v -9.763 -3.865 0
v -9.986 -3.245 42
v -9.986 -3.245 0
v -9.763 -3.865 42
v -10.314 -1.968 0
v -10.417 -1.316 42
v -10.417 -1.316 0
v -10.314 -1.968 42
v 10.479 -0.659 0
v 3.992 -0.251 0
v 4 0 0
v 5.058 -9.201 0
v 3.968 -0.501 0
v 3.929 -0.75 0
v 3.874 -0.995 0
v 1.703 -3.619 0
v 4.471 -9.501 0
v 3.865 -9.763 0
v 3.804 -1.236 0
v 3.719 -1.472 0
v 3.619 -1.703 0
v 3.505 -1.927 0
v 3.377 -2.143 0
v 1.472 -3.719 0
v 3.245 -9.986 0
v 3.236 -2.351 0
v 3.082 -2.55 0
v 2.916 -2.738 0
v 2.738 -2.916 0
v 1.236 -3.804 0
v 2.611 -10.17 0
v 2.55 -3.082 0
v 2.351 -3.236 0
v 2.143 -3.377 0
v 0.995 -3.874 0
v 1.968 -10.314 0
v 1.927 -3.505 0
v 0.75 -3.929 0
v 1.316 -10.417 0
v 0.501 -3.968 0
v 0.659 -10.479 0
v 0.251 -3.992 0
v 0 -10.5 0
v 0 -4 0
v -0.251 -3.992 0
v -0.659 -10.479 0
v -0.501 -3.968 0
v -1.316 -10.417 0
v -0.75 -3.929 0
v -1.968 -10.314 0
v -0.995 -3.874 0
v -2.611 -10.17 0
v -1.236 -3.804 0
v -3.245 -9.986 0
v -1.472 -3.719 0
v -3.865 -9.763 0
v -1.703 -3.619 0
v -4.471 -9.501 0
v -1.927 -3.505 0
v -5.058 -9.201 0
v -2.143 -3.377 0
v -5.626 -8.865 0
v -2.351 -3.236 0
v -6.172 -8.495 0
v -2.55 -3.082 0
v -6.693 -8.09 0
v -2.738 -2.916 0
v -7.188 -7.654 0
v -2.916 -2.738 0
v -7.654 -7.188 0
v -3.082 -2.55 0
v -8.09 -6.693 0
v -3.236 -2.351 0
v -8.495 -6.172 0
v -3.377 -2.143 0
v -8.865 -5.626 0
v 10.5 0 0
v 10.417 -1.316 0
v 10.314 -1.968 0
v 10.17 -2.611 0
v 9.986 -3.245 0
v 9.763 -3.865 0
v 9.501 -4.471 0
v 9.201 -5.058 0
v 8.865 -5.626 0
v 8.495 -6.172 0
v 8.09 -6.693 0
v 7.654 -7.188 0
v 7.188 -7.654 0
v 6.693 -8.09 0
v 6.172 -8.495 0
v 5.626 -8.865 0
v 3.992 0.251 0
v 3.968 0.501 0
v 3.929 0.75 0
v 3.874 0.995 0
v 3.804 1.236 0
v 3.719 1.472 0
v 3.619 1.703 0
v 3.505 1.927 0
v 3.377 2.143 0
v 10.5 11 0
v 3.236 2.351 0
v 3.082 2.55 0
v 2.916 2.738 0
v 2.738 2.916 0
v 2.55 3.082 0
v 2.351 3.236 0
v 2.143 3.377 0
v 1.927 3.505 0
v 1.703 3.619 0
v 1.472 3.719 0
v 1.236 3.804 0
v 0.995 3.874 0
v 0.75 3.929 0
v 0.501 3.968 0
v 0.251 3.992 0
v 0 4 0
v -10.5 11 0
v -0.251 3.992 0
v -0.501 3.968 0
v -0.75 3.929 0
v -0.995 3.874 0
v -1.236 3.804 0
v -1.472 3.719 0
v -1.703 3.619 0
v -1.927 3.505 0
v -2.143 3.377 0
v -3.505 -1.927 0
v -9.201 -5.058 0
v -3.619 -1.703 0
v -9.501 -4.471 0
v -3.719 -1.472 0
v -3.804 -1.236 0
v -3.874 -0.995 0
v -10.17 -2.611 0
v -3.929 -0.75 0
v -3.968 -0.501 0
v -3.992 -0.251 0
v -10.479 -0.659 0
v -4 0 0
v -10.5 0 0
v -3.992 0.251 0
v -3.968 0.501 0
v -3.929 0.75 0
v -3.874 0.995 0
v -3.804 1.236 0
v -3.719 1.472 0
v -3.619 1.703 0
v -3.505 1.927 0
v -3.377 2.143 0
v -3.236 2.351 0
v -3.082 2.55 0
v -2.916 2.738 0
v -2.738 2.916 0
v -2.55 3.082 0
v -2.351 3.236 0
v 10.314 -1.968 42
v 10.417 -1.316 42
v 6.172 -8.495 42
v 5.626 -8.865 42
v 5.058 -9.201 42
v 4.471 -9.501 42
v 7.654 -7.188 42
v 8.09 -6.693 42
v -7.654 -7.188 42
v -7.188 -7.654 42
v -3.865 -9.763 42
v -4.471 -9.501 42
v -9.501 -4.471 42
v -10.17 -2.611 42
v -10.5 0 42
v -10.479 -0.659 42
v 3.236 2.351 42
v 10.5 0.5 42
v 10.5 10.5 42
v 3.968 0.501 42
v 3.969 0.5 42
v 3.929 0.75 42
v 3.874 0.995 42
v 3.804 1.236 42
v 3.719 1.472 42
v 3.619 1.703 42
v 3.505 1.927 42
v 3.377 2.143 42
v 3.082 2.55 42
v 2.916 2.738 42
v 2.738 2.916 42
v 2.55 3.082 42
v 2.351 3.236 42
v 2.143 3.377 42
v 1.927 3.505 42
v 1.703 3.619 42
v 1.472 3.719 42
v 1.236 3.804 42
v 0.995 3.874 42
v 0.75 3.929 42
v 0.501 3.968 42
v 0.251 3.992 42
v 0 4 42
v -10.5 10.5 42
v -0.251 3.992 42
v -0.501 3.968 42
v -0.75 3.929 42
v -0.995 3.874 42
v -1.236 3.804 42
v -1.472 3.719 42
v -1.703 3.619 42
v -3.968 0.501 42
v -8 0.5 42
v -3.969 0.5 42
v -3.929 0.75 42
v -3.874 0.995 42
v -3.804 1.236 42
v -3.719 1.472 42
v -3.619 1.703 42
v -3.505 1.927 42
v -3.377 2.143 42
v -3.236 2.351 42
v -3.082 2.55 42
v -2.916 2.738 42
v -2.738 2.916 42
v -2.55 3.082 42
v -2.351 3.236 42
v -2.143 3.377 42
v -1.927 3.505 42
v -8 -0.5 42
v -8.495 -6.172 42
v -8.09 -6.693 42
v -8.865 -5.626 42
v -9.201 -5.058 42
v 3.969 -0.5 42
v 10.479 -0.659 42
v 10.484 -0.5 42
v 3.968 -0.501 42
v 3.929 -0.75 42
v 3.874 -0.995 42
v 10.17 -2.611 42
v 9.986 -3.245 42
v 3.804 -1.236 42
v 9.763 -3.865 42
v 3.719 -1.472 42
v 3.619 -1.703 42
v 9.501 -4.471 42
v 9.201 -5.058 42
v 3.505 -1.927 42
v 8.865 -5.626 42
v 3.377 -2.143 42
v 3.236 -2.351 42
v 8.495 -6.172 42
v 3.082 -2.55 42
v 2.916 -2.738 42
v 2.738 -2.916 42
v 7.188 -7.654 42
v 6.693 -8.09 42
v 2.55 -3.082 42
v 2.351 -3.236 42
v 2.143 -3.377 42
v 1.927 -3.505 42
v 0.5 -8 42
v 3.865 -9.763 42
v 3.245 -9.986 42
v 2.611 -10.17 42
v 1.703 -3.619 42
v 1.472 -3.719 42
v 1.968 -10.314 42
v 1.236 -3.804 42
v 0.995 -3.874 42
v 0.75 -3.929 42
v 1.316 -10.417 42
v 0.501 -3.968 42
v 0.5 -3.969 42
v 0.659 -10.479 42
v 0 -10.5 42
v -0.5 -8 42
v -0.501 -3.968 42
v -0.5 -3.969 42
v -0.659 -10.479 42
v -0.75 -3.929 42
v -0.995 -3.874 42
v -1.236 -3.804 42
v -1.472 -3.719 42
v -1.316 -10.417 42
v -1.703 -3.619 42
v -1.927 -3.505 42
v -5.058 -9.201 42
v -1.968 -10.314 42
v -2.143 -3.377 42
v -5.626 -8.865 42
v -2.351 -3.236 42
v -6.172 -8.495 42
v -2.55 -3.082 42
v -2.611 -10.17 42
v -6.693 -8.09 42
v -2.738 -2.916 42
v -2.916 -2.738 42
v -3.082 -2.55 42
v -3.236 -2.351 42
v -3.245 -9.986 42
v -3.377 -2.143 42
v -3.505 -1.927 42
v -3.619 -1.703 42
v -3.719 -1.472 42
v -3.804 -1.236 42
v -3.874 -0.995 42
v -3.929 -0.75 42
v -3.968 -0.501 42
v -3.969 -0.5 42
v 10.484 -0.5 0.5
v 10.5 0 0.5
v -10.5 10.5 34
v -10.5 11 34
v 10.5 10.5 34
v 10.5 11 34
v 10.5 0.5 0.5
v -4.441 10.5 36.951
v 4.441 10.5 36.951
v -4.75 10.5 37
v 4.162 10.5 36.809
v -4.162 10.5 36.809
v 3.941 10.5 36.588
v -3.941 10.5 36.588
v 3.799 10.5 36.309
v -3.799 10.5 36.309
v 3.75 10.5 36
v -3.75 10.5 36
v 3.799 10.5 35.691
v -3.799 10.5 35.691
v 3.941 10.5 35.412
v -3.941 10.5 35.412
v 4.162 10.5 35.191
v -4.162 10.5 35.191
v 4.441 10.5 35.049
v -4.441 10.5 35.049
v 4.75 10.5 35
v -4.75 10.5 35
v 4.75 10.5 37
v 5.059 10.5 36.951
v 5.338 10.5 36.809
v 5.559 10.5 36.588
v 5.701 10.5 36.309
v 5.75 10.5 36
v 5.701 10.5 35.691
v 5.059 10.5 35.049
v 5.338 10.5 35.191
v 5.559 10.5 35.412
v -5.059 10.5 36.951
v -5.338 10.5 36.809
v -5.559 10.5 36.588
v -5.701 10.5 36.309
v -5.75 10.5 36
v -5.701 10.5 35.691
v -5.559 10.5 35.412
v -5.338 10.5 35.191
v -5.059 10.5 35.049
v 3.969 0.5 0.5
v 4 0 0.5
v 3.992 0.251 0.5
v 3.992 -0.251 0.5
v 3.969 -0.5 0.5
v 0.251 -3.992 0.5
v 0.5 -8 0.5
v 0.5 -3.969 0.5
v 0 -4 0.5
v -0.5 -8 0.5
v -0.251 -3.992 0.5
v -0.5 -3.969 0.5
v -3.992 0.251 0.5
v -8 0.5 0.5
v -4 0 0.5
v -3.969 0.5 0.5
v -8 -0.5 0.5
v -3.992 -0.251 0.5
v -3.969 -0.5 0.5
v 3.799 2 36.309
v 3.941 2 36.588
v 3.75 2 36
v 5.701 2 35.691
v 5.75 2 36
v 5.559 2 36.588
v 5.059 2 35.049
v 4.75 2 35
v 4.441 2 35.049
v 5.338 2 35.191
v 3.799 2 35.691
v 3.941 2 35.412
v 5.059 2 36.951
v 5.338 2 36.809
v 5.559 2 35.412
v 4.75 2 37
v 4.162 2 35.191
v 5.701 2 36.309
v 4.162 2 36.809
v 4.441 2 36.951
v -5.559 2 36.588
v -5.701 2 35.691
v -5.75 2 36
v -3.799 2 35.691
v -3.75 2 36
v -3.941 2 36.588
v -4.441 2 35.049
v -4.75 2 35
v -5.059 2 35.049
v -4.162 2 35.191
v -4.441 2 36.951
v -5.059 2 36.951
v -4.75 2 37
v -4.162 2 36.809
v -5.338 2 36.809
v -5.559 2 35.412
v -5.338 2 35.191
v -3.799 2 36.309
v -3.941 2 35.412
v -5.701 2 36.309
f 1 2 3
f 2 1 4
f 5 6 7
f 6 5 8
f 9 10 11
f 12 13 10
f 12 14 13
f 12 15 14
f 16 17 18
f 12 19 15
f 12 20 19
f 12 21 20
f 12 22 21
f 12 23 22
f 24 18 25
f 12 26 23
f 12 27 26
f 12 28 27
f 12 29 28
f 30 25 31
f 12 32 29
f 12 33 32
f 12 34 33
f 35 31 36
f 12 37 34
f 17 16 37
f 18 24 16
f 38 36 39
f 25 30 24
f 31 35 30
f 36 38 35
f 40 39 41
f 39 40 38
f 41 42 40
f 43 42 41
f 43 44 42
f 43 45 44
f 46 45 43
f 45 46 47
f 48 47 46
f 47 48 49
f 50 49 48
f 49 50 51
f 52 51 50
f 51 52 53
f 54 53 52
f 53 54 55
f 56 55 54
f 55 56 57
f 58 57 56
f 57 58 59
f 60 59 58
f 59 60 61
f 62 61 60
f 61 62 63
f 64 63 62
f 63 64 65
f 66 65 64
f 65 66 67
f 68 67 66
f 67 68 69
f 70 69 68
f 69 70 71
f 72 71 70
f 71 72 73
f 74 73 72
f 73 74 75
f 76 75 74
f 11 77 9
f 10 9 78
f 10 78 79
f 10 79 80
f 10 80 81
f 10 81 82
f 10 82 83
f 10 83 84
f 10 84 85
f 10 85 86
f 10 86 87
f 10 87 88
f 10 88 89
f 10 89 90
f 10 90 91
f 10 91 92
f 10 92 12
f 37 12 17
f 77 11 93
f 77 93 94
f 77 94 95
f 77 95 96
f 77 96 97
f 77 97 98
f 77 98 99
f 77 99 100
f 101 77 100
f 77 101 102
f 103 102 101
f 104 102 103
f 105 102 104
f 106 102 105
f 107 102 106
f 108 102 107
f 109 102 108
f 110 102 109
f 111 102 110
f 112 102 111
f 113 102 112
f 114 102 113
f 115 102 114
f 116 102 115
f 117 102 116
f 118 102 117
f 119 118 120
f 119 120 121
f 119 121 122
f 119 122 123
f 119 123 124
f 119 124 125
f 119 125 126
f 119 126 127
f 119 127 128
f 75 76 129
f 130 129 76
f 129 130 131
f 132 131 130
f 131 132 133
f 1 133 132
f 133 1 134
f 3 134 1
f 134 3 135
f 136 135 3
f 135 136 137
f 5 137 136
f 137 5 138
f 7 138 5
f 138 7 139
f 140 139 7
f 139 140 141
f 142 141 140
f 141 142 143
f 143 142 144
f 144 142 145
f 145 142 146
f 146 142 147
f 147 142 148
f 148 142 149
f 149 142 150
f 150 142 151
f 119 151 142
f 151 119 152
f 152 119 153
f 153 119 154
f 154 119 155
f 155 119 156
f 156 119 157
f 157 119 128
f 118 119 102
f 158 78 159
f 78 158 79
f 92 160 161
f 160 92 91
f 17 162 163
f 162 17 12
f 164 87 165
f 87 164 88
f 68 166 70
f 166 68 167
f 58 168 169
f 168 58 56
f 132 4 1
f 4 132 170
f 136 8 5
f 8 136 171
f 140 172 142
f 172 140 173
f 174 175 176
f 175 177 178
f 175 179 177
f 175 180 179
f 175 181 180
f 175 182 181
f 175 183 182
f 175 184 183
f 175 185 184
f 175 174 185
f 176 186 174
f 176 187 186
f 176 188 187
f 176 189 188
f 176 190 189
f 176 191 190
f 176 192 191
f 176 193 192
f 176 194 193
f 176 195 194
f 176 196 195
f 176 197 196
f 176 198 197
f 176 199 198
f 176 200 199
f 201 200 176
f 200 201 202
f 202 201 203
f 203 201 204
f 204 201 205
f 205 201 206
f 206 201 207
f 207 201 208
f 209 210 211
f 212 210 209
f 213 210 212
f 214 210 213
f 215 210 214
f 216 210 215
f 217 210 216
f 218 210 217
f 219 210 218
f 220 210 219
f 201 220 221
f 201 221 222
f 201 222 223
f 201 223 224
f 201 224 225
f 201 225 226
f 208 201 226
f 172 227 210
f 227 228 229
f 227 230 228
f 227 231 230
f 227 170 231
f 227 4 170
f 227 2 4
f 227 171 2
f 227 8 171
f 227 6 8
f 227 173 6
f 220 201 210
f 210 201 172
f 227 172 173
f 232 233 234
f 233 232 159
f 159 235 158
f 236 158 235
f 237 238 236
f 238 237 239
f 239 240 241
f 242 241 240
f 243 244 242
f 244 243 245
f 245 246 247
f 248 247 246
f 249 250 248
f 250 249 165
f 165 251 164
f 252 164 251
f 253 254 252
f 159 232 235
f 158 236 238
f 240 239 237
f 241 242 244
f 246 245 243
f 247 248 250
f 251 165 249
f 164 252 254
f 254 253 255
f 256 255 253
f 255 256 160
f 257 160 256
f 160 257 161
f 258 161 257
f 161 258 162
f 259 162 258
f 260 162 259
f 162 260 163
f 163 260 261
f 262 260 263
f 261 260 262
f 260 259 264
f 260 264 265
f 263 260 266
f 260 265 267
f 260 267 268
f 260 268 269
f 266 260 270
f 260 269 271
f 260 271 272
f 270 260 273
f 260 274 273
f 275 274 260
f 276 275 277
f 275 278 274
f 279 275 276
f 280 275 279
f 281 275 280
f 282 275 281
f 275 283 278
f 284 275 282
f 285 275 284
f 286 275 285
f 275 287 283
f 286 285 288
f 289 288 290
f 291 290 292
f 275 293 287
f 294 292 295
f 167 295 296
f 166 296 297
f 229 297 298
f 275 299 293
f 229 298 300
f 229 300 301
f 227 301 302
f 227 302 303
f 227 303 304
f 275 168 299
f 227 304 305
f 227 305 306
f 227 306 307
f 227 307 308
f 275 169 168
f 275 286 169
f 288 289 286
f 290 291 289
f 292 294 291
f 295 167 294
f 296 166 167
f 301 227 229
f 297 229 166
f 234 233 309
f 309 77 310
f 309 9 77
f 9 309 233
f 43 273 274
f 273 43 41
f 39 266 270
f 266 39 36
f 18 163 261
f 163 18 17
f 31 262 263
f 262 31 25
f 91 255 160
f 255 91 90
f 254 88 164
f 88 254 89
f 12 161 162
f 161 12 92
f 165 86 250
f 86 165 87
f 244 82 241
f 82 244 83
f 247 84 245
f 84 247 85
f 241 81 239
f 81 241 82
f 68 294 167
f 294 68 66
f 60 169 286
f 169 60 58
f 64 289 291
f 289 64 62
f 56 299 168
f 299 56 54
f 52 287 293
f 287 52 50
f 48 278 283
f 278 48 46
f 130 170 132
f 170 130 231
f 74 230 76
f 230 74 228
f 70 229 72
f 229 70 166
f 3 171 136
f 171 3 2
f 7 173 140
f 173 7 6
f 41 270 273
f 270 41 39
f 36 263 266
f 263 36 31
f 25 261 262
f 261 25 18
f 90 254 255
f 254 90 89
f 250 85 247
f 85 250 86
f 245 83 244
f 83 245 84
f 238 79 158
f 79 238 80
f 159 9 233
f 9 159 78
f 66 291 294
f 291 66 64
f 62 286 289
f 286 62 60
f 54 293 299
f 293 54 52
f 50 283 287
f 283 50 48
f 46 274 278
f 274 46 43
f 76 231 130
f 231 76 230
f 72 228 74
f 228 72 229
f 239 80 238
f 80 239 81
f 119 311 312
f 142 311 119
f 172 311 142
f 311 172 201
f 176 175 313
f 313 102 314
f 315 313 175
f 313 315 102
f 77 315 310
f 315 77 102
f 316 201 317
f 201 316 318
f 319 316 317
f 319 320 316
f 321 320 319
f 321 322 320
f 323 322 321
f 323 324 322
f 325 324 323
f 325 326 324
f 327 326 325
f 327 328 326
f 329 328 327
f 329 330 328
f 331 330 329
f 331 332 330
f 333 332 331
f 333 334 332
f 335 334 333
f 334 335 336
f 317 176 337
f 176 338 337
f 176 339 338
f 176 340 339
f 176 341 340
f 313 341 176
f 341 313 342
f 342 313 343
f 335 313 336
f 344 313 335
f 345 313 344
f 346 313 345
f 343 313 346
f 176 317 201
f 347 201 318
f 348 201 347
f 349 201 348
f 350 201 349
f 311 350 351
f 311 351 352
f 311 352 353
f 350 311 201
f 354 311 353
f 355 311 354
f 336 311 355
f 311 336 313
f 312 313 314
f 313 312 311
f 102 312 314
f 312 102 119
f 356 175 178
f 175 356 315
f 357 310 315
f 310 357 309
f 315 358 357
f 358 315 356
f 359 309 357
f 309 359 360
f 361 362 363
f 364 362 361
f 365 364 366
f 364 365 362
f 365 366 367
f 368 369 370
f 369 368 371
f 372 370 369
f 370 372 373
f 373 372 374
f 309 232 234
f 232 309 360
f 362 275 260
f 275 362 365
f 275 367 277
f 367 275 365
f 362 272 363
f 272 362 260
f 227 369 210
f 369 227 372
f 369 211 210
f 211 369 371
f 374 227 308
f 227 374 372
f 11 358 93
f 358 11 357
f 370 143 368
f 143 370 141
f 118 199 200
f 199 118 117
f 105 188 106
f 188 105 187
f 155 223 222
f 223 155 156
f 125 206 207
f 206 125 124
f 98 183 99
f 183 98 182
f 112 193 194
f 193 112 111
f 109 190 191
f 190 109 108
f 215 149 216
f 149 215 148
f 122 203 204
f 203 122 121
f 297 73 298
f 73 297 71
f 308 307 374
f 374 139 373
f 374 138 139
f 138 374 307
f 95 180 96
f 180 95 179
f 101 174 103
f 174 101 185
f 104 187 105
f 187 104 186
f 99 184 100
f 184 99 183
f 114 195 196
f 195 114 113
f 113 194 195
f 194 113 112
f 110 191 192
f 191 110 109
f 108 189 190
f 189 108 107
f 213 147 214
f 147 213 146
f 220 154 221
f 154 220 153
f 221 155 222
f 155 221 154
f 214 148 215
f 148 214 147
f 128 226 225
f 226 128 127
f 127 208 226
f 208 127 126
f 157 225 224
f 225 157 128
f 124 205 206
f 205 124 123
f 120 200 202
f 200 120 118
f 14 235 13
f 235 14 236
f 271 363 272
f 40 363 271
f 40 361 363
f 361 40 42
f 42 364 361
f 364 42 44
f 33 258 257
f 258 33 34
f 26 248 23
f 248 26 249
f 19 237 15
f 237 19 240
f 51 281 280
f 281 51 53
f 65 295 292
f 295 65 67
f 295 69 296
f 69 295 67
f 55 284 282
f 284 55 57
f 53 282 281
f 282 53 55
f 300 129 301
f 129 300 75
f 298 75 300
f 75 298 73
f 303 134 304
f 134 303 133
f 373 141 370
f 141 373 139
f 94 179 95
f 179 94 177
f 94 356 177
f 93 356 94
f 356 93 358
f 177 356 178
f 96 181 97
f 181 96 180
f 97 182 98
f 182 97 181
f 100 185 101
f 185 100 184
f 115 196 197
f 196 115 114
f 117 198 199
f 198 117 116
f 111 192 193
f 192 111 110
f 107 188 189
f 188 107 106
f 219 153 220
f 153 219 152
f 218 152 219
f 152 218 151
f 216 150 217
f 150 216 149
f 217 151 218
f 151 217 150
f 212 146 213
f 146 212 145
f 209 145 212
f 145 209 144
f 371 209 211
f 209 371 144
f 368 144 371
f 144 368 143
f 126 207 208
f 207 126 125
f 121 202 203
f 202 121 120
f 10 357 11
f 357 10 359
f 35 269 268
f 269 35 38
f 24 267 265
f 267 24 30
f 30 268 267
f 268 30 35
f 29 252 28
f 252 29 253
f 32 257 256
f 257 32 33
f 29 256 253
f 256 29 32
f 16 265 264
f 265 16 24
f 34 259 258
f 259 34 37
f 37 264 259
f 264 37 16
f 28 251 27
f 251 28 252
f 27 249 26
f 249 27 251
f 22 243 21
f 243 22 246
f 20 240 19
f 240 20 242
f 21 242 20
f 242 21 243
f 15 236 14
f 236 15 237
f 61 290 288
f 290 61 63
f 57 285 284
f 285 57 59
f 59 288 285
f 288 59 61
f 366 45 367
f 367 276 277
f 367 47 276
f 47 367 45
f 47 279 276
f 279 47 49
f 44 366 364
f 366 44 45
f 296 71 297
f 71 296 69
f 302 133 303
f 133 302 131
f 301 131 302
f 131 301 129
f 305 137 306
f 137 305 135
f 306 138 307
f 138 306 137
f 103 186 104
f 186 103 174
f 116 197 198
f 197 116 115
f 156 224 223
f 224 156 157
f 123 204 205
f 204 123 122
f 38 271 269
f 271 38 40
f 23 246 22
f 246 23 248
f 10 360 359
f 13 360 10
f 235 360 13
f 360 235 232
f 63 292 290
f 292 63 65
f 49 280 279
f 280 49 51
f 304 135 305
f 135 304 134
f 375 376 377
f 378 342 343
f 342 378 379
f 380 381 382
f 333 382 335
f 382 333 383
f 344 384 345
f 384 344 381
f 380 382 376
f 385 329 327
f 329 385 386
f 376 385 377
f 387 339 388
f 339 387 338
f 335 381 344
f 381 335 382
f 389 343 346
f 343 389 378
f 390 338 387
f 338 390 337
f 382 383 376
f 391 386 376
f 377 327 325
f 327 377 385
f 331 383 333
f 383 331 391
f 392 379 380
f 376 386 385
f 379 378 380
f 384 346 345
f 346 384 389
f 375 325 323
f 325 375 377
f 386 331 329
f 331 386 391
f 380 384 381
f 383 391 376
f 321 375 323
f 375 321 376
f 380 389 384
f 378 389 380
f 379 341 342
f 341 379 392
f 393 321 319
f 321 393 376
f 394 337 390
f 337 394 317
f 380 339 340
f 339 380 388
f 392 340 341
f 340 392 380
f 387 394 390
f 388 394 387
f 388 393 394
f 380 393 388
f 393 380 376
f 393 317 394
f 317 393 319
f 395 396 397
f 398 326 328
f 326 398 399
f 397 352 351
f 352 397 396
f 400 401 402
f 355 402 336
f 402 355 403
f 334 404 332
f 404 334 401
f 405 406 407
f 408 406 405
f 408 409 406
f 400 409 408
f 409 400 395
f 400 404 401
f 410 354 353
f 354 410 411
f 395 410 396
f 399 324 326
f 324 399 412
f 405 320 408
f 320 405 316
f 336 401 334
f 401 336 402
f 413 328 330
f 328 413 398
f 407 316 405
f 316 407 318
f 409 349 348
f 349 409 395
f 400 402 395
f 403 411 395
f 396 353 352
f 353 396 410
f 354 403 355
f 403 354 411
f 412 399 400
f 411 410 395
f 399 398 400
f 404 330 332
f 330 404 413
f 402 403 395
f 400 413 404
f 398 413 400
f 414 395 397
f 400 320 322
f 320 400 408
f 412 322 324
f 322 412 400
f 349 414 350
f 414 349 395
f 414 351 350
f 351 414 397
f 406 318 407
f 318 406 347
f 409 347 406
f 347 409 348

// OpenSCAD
height = 42;

difference(){
union(){
cylinder(r=10.5, h=height, $fn=100);
translate([-10.5,0,0])cube([21,10.5,height]);
translate([-10.5,0,0])cube([21,11,height-8]);
}
translate([0,-0.5,0.5])cube([20,1,45]);
rotate([0,0,-90]) translate([0,-0.5,0.5])cube([8,1,45]);
rotate([0,0,-180]) translate([0,-0.5,0.5])cube([8,1,45]);
translate([0,0,-1])cylinder(r=4, h=height+2, $fn=100);
translate([4.75,2,height-6]) rotate([-90,0,0])cylinder(r=1, h=100,$fn=20);
translate([-4.75,2,height-6]) rotate([-90,0,0])cylinder(r=1, h=100,$fn=20);
}
